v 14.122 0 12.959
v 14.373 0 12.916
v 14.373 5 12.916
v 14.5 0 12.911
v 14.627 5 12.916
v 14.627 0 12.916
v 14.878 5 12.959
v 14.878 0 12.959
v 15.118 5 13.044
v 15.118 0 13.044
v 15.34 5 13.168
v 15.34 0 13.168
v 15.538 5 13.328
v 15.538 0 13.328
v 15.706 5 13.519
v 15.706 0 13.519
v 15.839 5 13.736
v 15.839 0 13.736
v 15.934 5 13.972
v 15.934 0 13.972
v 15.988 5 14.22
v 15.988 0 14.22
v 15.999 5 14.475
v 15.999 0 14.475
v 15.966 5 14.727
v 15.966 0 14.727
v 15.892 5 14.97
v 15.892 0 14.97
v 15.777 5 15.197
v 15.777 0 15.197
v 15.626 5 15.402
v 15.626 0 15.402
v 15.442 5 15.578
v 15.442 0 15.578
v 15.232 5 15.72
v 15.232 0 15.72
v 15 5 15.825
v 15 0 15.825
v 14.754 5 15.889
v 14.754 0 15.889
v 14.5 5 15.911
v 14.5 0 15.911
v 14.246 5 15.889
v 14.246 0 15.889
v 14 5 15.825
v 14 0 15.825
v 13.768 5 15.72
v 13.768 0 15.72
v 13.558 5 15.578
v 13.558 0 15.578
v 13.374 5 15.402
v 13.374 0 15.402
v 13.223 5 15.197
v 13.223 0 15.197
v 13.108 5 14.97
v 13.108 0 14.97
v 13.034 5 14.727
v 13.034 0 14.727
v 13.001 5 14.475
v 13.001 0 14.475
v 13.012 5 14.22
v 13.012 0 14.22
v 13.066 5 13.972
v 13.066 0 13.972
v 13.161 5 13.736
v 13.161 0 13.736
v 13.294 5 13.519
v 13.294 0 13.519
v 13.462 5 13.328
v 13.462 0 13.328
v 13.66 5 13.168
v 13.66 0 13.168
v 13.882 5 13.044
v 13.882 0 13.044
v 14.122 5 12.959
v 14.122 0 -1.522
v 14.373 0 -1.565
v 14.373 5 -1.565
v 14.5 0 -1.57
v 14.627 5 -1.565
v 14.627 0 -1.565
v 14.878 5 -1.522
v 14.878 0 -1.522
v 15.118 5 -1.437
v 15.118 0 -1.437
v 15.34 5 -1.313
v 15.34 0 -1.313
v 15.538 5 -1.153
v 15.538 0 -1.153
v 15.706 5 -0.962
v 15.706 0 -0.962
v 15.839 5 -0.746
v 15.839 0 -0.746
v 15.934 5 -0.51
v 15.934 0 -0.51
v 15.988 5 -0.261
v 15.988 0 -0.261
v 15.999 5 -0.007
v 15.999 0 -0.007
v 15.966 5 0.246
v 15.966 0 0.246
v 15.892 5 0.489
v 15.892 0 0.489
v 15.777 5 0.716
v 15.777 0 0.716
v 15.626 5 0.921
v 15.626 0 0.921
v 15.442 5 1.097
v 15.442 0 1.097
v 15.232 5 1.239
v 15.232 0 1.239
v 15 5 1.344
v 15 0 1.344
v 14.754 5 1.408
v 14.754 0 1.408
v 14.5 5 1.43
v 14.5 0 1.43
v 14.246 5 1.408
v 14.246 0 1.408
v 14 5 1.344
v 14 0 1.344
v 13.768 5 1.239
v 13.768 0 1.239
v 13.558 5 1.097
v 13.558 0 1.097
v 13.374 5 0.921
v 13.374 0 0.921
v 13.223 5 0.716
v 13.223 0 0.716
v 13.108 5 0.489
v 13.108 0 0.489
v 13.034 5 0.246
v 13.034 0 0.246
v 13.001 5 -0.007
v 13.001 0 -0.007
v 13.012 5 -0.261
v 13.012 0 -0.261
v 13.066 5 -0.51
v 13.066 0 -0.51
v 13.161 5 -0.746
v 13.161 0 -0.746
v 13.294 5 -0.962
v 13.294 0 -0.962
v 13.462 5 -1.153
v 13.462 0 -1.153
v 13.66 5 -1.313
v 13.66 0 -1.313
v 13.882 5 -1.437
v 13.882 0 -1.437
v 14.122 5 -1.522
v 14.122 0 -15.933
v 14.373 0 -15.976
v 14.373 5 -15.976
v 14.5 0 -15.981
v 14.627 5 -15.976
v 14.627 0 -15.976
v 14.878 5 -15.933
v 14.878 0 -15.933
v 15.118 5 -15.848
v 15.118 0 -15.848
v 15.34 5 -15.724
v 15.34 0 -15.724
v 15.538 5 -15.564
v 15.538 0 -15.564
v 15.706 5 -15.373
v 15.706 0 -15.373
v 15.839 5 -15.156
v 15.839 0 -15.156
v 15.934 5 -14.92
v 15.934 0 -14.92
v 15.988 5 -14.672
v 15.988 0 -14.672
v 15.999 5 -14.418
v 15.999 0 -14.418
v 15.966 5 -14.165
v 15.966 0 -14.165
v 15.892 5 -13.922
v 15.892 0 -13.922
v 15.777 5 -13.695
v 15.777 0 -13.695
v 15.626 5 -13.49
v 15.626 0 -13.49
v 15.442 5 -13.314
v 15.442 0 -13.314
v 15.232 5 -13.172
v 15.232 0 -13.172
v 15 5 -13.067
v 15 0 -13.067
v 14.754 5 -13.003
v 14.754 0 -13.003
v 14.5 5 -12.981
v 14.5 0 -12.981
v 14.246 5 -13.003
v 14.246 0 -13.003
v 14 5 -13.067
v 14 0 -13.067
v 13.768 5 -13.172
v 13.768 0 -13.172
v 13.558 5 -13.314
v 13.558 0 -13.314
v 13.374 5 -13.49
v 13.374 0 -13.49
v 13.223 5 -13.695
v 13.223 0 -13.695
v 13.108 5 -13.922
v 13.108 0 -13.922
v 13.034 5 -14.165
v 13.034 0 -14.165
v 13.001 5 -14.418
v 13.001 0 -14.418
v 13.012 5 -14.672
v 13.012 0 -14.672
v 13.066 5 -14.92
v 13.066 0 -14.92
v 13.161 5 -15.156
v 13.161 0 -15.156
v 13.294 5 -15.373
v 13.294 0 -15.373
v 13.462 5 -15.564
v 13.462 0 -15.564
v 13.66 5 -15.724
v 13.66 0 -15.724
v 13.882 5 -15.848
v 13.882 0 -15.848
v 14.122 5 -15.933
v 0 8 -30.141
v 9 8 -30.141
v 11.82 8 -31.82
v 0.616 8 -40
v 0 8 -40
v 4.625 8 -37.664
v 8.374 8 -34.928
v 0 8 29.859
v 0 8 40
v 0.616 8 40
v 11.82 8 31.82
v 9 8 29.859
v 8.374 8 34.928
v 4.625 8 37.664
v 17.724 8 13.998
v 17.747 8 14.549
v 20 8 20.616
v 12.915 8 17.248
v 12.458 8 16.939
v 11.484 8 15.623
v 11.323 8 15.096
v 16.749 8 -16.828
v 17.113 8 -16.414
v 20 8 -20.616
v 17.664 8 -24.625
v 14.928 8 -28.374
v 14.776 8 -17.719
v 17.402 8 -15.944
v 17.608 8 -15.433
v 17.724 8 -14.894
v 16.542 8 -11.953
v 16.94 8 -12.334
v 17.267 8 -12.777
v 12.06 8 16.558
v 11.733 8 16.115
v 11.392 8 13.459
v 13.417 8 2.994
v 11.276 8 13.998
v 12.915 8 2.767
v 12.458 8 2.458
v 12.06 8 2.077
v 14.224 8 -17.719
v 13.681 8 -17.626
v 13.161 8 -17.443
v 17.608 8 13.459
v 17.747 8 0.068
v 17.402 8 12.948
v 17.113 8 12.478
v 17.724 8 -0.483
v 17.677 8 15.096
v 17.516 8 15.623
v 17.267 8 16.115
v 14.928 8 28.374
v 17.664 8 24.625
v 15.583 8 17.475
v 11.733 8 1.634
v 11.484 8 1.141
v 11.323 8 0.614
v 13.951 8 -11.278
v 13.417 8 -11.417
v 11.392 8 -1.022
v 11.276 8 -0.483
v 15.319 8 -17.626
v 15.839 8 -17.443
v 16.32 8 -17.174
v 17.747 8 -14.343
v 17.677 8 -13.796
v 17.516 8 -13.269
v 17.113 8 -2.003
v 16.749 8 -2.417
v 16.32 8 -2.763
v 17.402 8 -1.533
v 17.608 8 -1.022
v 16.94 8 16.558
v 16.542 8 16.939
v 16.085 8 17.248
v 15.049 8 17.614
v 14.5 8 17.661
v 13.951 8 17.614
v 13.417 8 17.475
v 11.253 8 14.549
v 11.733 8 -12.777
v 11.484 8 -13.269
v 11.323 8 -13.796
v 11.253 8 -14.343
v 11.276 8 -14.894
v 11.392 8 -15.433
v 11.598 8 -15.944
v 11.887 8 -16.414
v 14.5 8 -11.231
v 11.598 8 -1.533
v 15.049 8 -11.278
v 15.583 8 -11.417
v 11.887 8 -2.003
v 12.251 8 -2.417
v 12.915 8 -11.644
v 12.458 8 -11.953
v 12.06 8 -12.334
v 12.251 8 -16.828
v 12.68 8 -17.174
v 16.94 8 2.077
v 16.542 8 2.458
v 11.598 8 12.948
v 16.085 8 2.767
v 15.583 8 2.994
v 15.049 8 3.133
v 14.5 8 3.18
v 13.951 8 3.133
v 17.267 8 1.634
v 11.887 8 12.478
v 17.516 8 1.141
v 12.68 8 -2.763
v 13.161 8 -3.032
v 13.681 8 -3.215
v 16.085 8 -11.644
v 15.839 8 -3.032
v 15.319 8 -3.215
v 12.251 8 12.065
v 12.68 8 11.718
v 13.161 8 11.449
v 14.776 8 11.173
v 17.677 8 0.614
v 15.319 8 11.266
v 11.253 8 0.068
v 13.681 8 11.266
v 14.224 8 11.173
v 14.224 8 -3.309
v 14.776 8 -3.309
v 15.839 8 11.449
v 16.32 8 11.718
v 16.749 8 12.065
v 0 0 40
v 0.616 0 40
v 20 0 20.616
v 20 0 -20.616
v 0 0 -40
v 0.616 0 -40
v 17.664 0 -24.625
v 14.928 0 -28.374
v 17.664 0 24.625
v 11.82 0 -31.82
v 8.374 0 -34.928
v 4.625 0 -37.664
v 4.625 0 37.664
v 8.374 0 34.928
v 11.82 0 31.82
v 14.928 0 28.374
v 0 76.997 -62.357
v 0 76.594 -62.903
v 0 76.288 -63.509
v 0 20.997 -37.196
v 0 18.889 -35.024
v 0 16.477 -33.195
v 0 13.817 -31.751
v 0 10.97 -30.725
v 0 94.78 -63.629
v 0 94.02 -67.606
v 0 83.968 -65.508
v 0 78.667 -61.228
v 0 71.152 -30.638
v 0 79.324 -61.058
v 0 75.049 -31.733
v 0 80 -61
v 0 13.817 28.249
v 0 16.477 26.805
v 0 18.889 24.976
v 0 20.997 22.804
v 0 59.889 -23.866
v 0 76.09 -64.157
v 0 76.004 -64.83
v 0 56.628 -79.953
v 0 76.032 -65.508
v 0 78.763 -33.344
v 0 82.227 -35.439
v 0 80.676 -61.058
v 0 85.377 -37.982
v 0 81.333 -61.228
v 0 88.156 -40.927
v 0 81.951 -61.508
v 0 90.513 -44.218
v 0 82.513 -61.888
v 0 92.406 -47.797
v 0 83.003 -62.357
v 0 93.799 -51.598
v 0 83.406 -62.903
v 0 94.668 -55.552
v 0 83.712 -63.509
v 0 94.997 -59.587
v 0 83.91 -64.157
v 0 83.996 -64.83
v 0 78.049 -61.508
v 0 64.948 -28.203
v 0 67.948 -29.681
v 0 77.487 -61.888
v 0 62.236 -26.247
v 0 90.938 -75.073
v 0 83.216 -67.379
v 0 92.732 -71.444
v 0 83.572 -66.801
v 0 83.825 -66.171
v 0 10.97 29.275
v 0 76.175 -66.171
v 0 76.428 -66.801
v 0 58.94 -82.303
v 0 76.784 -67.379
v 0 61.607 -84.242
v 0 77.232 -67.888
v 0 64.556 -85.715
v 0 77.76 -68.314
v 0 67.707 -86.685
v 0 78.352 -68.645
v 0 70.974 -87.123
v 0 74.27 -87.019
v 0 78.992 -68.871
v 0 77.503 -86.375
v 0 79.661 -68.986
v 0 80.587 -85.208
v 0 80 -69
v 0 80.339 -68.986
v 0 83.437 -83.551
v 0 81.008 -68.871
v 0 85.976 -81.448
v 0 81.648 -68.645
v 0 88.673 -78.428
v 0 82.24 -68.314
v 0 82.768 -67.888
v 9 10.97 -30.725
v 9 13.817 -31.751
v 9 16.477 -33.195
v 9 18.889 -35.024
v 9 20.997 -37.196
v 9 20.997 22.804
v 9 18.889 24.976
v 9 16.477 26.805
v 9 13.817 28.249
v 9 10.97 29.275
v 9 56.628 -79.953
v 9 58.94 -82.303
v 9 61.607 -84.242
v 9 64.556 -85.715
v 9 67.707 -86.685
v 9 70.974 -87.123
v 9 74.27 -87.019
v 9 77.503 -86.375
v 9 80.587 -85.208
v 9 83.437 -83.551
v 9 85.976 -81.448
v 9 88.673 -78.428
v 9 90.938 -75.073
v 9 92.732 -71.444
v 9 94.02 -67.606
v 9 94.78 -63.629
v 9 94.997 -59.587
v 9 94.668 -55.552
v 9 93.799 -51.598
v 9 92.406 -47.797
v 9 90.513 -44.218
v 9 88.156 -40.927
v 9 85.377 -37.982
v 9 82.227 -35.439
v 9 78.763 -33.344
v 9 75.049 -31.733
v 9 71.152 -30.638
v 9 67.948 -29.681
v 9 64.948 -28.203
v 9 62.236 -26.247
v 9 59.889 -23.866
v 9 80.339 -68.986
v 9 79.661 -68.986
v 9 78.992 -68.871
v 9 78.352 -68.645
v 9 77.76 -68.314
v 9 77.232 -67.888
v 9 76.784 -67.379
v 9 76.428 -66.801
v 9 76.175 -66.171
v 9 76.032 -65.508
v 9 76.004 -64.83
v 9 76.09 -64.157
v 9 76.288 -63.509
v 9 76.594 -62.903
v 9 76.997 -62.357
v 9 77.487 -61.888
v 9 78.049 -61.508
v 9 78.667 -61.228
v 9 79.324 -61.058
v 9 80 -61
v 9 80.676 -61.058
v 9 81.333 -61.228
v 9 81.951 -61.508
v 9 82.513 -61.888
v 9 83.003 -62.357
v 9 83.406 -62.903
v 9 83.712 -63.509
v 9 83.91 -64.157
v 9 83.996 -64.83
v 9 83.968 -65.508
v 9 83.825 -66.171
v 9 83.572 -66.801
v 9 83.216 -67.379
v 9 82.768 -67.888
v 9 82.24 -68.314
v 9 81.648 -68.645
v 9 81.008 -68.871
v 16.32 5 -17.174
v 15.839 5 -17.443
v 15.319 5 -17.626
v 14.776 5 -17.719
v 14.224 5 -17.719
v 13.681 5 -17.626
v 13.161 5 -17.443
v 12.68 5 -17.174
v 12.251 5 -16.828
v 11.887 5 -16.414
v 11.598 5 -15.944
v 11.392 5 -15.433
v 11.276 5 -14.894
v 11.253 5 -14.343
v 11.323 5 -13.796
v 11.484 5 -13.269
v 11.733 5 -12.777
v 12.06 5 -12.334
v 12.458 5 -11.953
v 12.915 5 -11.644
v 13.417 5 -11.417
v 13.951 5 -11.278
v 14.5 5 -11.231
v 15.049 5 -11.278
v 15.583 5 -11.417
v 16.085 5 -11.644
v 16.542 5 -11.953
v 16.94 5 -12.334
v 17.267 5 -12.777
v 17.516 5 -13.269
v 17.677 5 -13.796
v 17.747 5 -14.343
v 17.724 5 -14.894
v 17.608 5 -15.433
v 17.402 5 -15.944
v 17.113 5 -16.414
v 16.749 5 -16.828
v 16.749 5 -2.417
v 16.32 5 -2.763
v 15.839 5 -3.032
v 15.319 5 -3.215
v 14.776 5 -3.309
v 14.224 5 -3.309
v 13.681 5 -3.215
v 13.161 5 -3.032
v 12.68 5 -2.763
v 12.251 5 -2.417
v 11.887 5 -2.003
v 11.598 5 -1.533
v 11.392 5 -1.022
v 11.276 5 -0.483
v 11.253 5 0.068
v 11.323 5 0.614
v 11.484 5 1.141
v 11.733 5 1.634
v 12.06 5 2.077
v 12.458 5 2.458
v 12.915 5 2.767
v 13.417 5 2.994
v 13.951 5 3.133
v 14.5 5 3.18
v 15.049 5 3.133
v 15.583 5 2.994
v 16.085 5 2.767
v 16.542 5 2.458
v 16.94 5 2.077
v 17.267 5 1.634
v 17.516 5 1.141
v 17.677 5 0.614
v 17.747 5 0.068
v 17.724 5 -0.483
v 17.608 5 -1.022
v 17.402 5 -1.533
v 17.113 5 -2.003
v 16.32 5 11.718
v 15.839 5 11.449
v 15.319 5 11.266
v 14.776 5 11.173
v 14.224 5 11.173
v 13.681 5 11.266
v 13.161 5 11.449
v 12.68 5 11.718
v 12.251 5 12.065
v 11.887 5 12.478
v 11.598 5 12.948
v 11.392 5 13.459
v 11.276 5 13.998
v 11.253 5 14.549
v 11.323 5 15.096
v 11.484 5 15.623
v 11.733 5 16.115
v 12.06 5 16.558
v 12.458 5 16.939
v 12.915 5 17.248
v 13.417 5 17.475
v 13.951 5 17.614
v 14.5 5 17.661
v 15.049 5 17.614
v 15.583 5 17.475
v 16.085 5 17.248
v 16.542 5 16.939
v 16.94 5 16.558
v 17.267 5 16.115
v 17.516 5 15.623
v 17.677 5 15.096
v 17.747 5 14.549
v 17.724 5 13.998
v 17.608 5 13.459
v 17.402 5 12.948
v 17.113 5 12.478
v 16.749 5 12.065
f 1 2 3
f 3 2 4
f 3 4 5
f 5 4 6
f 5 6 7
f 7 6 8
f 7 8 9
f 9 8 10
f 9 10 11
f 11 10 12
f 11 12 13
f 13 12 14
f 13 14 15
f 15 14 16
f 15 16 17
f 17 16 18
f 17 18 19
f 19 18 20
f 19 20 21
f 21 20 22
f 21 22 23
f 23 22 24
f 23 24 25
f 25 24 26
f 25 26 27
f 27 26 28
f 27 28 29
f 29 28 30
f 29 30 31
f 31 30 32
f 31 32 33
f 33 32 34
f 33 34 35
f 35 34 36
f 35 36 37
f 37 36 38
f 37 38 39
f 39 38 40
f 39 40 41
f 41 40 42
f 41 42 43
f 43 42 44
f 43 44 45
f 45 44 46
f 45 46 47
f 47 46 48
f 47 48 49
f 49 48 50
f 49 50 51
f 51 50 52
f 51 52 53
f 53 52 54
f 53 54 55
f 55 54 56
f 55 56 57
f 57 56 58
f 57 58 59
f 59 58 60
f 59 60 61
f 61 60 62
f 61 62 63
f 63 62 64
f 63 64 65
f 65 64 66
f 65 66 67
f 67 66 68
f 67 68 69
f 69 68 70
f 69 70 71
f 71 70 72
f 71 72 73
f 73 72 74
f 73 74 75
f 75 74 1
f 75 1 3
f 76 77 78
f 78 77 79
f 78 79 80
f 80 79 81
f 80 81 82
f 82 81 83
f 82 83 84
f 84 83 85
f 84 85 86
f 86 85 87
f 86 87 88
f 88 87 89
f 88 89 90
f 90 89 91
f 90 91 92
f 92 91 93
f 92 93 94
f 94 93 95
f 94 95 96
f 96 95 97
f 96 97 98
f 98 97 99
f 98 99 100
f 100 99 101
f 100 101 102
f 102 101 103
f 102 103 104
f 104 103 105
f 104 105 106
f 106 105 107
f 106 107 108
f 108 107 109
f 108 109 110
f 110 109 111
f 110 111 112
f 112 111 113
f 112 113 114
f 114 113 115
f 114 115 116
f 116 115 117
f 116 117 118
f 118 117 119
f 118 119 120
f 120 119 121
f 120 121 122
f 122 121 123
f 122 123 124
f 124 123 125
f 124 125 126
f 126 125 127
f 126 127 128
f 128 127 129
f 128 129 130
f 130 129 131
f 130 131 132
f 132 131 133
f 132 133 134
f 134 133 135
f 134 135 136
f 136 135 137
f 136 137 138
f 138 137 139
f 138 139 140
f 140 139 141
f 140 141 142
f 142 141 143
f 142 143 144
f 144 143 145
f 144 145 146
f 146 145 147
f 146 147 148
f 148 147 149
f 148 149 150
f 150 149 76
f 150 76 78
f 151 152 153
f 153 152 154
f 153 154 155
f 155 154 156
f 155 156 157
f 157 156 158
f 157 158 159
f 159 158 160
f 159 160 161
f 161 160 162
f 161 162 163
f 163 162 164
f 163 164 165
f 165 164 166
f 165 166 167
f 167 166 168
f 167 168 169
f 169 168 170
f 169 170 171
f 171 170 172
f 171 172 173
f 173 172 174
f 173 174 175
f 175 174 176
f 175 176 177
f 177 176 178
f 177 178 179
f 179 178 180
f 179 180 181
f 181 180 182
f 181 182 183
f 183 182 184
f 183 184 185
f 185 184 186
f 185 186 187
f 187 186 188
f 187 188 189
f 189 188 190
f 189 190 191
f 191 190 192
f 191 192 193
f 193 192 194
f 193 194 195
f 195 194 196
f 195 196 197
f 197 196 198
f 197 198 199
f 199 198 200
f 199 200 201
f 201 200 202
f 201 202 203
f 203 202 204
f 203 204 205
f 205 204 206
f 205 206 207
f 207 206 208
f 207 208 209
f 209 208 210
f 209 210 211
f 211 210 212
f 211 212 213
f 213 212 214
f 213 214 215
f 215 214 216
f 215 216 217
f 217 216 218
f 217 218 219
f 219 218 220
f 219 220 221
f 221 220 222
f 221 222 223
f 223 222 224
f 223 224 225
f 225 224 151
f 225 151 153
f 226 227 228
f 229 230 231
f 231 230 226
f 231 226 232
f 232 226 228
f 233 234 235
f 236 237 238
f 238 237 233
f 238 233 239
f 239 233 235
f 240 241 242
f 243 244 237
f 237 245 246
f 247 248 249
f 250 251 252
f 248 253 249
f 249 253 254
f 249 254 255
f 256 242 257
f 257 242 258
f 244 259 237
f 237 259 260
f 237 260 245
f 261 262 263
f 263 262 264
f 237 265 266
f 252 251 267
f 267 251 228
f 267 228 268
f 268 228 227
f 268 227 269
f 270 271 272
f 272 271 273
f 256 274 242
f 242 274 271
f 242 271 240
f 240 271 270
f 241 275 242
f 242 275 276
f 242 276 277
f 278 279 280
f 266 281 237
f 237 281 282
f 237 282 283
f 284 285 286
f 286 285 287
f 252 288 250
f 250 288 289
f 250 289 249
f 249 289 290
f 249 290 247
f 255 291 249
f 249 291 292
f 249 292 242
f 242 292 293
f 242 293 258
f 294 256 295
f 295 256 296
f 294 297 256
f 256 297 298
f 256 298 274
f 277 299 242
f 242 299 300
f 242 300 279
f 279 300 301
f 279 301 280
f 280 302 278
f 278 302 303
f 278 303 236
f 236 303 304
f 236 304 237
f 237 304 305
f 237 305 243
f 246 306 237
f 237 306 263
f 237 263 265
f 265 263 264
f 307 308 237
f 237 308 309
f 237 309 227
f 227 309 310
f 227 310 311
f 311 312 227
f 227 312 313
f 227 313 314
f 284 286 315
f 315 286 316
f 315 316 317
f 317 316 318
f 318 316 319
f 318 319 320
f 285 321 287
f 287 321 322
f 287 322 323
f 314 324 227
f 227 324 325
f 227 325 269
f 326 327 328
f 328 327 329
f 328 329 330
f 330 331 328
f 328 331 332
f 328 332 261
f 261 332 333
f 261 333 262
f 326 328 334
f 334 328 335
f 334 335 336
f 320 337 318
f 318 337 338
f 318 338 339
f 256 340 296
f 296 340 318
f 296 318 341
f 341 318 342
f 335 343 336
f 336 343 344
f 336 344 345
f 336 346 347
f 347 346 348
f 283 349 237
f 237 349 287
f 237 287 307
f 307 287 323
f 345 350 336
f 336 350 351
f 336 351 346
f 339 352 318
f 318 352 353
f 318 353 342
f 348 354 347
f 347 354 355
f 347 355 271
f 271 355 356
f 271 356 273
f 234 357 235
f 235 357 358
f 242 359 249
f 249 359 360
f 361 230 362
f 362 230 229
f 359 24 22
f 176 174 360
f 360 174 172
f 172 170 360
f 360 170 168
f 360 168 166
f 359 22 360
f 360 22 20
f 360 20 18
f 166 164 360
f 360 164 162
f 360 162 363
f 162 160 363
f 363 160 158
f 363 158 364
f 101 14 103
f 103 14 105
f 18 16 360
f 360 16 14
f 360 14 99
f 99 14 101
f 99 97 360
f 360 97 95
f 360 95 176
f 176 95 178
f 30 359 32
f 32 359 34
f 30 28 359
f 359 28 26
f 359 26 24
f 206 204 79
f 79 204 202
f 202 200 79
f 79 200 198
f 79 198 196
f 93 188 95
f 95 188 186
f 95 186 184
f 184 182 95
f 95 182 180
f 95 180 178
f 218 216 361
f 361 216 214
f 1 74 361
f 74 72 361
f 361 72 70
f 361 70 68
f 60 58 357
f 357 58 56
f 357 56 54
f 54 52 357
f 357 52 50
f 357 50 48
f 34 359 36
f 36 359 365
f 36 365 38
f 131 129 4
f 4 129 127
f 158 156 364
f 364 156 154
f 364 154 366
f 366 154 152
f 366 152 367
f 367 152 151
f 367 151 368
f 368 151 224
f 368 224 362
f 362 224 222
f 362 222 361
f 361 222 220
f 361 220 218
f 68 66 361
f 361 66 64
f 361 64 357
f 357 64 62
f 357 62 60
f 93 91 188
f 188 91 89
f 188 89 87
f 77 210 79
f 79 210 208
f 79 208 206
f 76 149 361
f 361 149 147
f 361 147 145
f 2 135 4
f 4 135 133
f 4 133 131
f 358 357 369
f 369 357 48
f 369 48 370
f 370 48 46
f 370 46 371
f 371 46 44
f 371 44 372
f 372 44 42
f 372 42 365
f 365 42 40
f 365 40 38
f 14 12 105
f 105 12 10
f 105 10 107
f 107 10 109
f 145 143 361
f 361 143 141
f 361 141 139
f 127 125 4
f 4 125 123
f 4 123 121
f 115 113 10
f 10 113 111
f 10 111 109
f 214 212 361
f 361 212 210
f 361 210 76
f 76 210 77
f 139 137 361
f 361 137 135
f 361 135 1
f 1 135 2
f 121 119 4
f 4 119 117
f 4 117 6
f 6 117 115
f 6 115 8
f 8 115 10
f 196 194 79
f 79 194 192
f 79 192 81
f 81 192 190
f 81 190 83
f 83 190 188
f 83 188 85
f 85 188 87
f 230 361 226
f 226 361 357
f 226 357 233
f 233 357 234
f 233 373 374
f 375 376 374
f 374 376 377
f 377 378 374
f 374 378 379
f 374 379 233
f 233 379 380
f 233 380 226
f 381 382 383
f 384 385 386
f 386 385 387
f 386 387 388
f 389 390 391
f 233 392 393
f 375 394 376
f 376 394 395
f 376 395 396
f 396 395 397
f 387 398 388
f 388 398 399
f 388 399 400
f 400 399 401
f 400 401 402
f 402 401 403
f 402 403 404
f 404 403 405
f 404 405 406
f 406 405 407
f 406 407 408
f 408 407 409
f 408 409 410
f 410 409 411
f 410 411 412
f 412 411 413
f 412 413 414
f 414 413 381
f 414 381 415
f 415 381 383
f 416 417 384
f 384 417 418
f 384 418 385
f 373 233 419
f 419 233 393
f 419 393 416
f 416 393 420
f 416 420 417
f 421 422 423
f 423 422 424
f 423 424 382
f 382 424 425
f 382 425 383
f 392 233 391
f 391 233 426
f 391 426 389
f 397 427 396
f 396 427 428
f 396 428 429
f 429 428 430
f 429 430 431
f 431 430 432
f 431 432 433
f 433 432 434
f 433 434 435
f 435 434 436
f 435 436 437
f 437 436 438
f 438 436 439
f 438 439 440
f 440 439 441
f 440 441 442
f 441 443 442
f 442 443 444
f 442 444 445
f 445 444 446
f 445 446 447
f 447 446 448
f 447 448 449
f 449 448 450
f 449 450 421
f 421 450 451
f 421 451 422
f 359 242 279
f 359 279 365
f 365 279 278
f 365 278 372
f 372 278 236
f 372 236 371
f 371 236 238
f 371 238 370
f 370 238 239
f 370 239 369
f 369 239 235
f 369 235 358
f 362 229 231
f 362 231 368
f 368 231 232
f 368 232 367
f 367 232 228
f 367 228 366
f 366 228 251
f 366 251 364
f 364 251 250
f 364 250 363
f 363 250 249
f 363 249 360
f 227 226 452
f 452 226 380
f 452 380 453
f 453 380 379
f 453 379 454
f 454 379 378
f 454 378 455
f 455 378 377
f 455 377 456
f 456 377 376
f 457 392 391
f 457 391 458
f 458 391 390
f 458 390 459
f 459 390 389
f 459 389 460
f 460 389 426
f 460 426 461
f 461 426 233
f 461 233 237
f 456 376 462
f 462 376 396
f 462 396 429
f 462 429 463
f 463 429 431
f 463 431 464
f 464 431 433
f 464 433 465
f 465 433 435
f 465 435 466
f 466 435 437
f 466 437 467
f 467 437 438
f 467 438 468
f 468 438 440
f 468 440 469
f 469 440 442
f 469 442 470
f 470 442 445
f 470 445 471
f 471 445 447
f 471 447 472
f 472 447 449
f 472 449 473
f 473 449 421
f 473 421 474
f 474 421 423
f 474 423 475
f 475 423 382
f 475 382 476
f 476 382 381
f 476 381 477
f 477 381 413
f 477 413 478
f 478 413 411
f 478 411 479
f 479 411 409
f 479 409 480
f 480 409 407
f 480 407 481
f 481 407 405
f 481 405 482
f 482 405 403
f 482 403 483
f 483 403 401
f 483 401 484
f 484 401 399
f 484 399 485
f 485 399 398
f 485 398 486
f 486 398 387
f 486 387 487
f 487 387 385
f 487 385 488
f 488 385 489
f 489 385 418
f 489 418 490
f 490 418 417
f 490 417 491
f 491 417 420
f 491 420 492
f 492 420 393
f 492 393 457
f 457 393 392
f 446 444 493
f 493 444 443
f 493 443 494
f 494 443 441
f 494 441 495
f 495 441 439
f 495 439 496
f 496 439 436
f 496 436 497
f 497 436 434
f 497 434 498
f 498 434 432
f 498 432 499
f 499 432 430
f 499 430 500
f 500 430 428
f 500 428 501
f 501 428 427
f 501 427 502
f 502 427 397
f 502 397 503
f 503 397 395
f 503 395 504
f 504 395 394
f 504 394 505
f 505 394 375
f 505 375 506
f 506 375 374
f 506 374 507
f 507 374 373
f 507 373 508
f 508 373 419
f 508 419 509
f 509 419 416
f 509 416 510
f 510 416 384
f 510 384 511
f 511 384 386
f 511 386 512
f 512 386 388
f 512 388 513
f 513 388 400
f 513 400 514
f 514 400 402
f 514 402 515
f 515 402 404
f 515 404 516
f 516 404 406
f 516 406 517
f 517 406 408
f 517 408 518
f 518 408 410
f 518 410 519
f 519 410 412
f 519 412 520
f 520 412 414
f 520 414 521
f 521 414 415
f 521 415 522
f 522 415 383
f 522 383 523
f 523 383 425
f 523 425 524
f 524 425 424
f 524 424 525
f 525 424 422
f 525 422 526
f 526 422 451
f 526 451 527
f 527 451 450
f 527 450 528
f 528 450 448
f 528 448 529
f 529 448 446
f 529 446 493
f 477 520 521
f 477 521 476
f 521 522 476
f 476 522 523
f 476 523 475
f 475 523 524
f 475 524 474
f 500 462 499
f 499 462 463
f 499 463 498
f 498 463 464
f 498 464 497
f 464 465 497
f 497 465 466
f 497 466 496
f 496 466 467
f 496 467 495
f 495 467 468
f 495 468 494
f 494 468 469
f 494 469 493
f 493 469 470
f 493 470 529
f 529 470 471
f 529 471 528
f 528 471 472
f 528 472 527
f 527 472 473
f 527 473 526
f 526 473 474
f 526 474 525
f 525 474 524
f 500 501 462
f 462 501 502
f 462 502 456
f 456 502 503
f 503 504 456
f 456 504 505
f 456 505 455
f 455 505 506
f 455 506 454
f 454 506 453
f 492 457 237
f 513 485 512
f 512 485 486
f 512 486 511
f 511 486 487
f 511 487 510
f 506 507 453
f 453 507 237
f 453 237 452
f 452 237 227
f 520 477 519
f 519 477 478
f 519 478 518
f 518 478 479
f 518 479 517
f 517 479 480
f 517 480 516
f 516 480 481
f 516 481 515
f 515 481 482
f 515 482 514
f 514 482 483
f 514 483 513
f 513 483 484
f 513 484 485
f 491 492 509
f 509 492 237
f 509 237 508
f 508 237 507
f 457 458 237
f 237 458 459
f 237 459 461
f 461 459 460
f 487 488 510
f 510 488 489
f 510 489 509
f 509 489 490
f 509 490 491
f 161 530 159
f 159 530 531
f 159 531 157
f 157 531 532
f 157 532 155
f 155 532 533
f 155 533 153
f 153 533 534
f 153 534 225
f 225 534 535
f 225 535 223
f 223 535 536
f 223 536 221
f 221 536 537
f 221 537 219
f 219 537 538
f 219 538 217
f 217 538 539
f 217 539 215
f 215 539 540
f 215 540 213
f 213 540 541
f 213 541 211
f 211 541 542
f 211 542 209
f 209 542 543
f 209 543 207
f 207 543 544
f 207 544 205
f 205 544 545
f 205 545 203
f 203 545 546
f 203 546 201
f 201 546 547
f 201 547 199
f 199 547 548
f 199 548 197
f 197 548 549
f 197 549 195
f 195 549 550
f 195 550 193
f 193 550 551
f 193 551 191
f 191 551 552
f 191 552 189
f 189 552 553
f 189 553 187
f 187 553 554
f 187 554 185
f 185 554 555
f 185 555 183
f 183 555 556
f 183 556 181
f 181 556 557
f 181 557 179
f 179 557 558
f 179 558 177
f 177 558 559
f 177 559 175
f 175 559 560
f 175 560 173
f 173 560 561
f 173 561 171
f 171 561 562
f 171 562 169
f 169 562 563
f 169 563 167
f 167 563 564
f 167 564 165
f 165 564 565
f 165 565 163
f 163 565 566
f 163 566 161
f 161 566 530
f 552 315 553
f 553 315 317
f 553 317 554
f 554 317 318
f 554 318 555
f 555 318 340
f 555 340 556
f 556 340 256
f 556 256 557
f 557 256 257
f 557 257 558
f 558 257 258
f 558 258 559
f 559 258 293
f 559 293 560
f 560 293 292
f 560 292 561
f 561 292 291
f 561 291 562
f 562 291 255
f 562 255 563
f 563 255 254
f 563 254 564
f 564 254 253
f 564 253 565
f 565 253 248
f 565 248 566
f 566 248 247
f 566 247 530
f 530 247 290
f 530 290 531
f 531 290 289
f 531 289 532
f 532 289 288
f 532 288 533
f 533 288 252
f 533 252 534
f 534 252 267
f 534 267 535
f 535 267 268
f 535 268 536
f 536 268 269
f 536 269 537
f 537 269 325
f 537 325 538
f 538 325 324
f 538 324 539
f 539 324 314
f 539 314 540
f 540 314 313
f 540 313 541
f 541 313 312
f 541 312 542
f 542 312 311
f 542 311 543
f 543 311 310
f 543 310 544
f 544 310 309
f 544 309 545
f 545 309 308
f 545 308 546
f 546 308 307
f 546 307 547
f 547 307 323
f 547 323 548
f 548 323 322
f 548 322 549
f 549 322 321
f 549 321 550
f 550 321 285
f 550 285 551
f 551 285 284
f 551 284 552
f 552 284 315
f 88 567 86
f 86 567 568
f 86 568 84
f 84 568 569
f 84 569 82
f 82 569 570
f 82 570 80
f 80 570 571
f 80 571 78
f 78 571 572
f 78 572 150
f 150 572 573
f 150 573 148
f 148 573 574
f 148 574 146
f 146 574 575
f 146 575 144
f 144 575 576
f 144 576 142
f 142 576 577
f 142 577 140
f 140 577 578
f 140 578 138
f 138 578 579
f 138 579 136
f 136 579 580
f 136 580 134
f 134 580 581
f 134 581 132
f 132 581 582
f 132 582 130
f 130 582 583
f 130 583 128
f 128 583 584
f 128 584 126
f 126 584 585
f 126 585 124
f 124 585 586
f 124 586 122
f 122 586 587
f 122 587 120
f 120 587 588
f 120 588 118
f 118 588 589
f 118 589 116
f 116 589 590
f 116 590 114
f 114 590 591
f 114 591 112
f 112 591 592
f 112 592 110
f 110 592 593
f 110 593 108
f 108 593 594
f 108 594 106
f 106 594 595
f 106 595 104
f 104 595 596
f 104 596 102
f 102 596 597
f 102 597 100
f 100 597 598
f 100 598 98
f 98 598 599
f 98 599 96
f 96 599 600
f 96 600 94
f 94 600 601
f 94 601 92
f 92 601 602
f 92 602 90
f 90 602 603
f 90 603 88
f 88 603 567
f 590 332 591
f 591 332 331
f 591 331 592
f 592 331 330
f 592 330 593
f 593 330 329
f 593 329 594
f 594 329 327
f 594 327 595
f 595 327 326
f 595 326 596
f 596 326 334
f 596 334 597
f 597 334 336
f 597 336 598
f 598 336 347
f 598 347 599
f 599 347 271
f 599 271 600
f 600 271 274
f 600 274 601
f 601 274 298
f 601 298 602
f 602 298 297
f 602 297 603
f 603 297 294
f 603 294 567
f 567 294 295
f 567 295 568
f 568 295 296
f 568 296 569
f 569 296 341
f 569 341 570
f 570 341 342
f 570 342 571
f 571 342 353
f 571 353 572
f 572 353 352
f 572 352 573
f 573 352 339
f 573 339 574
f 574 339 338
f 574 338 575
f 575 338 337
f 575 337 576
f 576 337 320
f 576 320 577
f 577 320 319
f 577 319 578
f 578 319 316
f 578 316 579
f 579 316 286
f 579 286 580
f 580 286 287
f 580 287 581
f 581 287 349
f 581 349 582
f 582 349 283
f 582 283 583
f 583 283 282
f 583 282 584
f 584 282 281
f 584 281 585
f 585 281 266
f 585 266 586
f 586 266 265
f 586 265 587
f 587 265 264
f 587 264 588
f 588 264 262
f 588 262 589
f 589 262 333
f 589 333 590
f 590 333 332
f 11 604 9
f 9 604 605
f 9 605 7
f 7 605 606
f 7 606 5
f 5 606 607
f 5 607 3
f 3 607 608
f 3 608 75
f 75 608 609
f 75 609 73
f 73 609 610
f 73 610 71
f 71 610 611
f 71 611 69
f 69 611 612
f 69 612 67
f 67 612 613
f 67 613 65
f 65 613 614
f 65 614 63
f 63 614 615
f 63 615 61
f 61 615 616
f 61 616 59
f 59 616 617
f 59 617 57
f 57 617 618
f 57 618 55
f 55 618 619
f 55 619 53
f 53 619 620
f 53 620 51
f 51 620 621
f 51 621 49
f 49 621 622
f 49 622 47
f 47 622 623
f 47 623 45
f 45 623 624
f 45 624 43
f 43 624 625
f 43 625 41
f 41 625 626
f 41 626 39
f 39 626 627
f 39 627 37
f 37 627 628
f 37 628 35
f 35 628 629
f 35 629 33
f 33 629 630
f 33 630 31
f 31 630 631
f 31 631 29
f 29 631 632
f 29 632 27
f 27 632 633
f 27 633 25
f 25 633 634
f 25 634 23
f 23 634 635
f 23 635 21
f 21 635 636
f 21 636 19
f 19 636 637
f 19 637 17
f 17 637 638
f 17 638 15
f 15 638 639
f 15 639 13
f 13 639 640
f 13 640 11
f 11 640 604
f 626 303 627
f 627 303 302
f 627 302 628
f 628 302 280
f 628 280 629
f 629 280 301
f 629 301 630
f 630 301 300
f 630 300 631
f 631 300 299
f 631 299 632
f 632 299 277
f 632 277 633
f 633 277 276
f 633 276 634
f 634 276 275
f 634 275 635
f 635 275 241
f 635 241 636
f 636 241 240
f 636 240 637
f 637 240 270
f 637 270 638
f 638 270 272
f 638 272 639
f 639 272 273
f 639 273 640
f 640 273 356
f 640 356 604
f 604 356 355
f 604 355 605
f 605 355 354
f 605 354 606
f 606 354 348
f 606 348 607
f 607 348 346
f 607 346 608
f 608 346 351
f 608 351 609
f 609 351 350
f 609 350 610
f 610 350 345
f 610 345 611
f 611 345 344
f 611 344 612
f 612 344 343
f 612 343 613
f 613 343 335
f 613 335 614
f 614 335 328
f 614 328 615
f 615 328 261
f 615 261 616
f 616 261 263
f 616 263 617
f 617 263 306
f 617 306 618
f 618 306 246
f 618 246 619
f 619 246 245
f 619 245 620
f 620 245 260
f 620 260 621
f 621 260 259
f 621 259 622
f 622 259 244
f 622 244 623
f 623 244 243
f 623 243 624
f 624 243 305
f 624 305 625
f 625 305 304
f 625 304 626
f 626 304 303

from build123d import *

# Parameters (mm, degrees)
SALIENTE_EXTRUIR2_DEPTH = 8
CORTAR_EXTRUIR1_DEPTH   = 8
CROQUIS4_R              = 4
SALIENTE_EXTRUIR3_DEPTH = 13
CROQUIS5_W              = 11
CROQUIS5_H              = 133.016244933
CORTAR_EXTRUIR2_DEPTH   = 87
CROQUIS7_R              = 1.5
CORTAR_EXTRUIR3_DEPTH   = 87
CROQUIS8_R              = 3.25
CORTAR_EXTRUIR4_DEPTH   = 3


with BuildPart() as part:
    # Croquis1 → Saliente-Extruir2 (new body)
    with BuildSketch(Plane(origin=(0, 0, 0), x_dir=(1, 0, 0), z_dir=(0, 1, 0))):
        Polygon((0, 0), (0, 40), (20, 40), (20, -40), (0, -40), align=None)
    extrude(amount=SALIENTE_EXTRUIR2_DEPTH)

    # Croquis3 → Cortar-Extruir1 (cut)
    with BuildSketch(Plane(origin=(0, 8, 0), x_dir=(1, 0, 0), z_dir=(0, 1, 0))):
        with BuildLine():
            Line((20, 40), (0.615528128, 40))
            ThreePointArc((0.615528128, 40), (11.819805153, 31.819805153), (20, 20.615528128))
            Line((20, 20.615528128), (20, 40))
        make_face()
        with BuildLine():
            ThreePointArc((20, -20.615528128), (11.819805153, -31.819805153), (0.615528128, -40))
            Line((0.615528128, -40), (20, -40))
            Line((20, -40), (20, -20.615528128))
        make_face()
    extrude(amount=-CORTAR_EXTRUIR1_DEPTH, mode=Mode.SUBTRACT)

    # Croquis4 → Saliente-Extruir3 (add)
    with BuildSketch(Plane(origin=(0, 0, 0), x_dir=(0, 0, -1), z_dir=(1, 0, 0))):
        with BuildLine():
            Line((0, 0), (-30, 0))
            Line((-30, 0), (-30, 5.63250108))
            ThreePointArc((-30, 5.63250108), (-28.111788424, 14.115609005), (-22.803687993, 20.996926672))
            Line((-22.803687993, 20.996926672), (23.866202653, 59.88850221))
            ThreePointArc((23.866202653, 59.88850221), (28.203401142, 64.948074064), (30.637508796, 71.151756681))
            ThreePointArc((30.637508796, 71.151756681), (51.597737237, 93.799339931), (81.447972358, 85.975807058))
            ThreePointArc((81.447972358, 85.975807058), (87.123427128, 70.974483465), (79.953012113, 56.627510094))
            Line((79.953012113, 56.627510094), (37.196312007, 20.996926672))
            ThreePointArc((37.196312007, 20.996926672), (31.888211576, 14.115609005), (30, 5.63250108))
            Line((30, 5.63250108), (30, 0))
            Line((30, 0), (0, 0))
        make_face()
        with Locations(Location((65, 80, 0), (0, 0, 180))):
            Circle(CROQUIS4_R, mode=Mode.SUBTRACT)
    extrude(amount=SALIENTE_EXTRUIR3_DEPTH)

    # Croquis5 → Cortar-Extruir2 (cut)
    with BuildSketch(Plane(origin=(0, 95, 0), x_dir=(1, 0, 0), z_dir=(0, 1, 0))):
        with Locations((14.5, 20.641201652)):
            Rectangle(CROQUIS5_W, CROQUIS5_H)
    extrude(amount=-CORTAR_EXTRUIR2_DEPTH, mode=Mode.SUBTRACT)

    # Croquis7 → Cortar-Extruir3 (cut)
    with BuildSketch(Plane(origin=(0, 8, 0), x_dir=(1, 0, 0), z_dir=(0, 1, 0))):
        with Locations(Location((14.5, 14.481175371, 0), (0, 0, 270))):
            Circle(CROQUIS7_R)
        with Locations(Location((14.5, 0.070310316, 0), (0, 0, 270))):
            Circle(CROQUIS7_R)
        with Locations(Location((14.5, -14.410865055, 0), (0, 0, 270))):
            Circle(CROQUIS7_R)
    extrude(amount=-CORTAR_EXTRUIR3_DEPTH, mode=Mode.SUBTRACT)

    # Croquis8 → Cortar-Extruir4 (cut)
    with BuildSketch(Plane(origin=(0, 8, 0), x_dir=(1, 0, 0), z_dir=(0, 1, 0))):
        with Locations(Location((14.5, 14.481175371, 0), (0, 0, 270))):
            Circle(CROQUIS8_R)
        with Locations(Location((14.5, 0.070310316, 0), (0, 0, 270))):
            Circle(CROQUIS8_R)
        with Locations(Location((14.5, -14.410865055, 0), (0, 0, 270))):
            Circle(CROQUIS8_R)
    extrude(amount=-CORTAR_EXTRUIR4_DEPTH, mode=Mode.SUBTRACT)


solid = part.part
